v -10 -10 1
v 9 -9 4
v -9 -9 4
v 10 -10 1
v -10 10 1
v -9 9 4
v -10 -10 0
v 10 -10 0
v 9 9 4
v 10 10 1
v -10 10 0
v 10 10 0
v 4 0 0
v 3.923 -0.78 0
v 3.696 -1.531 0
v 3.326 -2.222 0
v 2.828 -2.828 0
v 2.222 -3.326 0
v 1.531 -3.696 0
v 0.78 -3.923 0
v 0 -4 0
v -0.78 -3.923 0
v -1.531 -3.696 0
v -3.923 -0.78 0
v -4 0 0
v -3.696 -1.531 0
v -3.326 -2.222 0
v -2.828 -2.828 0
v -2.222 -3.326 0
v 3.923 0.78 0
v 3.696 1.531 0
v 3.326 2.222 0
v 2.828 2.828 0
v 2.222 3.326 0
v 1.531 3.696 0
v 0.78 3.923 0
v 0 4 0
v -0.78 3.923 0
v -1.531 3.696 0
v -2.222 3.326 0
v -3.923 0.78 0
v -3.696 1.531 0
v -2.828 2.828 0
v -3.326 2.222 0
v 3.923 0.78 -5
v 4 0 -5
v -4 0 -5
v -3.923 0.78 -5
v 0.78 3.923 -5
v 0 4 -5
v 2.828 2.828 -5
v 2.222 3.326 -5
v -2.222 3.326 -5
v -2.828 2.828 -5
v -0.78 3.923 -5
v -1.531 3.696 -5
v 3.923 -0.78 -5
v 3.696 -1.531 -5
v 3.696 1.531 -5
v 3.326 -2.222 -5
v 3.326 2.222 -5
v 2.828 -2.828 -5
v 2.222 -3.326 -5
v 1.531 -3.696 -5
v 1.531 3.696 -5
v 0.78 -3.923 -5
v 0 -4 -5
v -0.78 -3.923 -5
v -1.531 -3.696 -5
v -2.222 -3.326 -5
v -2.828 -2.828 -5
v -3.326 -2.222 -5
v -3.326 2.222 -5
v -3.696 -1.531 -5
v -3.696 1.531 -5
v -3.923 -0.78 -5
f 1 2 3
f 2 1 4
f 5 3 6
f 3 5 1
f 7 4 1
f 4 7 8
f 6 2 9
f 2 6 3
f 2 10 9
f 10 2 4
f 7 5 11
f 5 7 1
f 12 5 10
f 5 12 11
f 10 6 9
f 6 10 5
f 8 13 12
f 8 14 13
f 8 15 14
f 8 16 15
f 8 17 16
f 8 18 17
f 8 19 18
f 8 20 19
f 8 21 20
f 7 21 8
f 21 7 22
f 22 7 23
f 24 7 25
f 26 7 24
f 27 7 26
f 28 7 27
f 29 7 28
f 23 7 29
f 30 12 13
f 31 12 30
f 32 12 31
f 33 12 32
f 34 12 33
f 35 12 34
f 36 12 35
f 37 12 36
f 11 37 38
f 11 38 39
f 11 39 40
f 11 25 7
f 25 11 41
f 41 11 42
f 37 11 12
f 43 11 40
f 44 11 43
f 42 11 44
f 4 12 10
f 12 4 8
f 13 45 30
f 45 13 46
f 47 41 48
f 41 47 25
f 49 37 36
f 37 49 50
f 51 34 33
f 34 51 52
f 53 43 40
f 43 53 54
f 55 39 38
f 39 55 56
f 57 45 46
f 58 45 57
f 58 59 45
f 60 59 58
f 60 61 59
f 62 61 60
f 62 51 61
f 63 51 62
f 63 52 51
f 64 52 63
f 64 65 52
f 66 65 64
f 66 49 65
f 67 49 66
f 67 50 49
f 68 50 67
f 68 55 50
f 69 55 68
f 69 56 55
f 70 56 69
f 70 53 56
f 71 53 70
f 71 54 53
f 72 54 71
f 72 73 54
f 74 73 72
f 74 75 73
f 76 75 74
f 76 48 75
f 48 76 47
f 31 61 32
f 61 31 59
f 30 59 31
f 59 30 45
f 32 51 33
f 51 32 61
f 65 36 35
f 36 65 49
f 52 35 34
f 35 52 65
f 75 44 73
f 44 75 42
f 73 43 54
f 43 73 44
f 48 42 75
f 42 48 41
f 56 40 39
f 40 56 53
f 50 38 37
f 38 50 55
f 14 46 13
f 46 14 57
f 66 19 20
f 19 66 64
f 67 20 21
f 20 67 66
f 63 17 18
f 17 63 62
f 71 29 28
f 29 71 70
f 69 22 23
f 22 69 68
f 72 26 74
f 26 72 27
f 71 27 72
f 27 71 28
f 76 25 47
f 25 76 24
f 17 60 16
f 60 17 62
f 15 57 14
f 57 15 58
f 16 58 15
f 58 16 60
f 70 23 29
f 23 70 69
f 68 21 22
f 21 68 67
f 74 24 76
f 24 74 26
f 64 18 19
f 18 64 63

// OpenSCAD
$fn = 32;

hull() {
    translate([0, 0, 0.5])
        cube([20, 20, 1], center = true);
    translate([0, 0, 2])    
        cube([18, 18, 4], center = true);
}
translate([0, 0, -5])
    cylinder(d = 8, h = 5);
